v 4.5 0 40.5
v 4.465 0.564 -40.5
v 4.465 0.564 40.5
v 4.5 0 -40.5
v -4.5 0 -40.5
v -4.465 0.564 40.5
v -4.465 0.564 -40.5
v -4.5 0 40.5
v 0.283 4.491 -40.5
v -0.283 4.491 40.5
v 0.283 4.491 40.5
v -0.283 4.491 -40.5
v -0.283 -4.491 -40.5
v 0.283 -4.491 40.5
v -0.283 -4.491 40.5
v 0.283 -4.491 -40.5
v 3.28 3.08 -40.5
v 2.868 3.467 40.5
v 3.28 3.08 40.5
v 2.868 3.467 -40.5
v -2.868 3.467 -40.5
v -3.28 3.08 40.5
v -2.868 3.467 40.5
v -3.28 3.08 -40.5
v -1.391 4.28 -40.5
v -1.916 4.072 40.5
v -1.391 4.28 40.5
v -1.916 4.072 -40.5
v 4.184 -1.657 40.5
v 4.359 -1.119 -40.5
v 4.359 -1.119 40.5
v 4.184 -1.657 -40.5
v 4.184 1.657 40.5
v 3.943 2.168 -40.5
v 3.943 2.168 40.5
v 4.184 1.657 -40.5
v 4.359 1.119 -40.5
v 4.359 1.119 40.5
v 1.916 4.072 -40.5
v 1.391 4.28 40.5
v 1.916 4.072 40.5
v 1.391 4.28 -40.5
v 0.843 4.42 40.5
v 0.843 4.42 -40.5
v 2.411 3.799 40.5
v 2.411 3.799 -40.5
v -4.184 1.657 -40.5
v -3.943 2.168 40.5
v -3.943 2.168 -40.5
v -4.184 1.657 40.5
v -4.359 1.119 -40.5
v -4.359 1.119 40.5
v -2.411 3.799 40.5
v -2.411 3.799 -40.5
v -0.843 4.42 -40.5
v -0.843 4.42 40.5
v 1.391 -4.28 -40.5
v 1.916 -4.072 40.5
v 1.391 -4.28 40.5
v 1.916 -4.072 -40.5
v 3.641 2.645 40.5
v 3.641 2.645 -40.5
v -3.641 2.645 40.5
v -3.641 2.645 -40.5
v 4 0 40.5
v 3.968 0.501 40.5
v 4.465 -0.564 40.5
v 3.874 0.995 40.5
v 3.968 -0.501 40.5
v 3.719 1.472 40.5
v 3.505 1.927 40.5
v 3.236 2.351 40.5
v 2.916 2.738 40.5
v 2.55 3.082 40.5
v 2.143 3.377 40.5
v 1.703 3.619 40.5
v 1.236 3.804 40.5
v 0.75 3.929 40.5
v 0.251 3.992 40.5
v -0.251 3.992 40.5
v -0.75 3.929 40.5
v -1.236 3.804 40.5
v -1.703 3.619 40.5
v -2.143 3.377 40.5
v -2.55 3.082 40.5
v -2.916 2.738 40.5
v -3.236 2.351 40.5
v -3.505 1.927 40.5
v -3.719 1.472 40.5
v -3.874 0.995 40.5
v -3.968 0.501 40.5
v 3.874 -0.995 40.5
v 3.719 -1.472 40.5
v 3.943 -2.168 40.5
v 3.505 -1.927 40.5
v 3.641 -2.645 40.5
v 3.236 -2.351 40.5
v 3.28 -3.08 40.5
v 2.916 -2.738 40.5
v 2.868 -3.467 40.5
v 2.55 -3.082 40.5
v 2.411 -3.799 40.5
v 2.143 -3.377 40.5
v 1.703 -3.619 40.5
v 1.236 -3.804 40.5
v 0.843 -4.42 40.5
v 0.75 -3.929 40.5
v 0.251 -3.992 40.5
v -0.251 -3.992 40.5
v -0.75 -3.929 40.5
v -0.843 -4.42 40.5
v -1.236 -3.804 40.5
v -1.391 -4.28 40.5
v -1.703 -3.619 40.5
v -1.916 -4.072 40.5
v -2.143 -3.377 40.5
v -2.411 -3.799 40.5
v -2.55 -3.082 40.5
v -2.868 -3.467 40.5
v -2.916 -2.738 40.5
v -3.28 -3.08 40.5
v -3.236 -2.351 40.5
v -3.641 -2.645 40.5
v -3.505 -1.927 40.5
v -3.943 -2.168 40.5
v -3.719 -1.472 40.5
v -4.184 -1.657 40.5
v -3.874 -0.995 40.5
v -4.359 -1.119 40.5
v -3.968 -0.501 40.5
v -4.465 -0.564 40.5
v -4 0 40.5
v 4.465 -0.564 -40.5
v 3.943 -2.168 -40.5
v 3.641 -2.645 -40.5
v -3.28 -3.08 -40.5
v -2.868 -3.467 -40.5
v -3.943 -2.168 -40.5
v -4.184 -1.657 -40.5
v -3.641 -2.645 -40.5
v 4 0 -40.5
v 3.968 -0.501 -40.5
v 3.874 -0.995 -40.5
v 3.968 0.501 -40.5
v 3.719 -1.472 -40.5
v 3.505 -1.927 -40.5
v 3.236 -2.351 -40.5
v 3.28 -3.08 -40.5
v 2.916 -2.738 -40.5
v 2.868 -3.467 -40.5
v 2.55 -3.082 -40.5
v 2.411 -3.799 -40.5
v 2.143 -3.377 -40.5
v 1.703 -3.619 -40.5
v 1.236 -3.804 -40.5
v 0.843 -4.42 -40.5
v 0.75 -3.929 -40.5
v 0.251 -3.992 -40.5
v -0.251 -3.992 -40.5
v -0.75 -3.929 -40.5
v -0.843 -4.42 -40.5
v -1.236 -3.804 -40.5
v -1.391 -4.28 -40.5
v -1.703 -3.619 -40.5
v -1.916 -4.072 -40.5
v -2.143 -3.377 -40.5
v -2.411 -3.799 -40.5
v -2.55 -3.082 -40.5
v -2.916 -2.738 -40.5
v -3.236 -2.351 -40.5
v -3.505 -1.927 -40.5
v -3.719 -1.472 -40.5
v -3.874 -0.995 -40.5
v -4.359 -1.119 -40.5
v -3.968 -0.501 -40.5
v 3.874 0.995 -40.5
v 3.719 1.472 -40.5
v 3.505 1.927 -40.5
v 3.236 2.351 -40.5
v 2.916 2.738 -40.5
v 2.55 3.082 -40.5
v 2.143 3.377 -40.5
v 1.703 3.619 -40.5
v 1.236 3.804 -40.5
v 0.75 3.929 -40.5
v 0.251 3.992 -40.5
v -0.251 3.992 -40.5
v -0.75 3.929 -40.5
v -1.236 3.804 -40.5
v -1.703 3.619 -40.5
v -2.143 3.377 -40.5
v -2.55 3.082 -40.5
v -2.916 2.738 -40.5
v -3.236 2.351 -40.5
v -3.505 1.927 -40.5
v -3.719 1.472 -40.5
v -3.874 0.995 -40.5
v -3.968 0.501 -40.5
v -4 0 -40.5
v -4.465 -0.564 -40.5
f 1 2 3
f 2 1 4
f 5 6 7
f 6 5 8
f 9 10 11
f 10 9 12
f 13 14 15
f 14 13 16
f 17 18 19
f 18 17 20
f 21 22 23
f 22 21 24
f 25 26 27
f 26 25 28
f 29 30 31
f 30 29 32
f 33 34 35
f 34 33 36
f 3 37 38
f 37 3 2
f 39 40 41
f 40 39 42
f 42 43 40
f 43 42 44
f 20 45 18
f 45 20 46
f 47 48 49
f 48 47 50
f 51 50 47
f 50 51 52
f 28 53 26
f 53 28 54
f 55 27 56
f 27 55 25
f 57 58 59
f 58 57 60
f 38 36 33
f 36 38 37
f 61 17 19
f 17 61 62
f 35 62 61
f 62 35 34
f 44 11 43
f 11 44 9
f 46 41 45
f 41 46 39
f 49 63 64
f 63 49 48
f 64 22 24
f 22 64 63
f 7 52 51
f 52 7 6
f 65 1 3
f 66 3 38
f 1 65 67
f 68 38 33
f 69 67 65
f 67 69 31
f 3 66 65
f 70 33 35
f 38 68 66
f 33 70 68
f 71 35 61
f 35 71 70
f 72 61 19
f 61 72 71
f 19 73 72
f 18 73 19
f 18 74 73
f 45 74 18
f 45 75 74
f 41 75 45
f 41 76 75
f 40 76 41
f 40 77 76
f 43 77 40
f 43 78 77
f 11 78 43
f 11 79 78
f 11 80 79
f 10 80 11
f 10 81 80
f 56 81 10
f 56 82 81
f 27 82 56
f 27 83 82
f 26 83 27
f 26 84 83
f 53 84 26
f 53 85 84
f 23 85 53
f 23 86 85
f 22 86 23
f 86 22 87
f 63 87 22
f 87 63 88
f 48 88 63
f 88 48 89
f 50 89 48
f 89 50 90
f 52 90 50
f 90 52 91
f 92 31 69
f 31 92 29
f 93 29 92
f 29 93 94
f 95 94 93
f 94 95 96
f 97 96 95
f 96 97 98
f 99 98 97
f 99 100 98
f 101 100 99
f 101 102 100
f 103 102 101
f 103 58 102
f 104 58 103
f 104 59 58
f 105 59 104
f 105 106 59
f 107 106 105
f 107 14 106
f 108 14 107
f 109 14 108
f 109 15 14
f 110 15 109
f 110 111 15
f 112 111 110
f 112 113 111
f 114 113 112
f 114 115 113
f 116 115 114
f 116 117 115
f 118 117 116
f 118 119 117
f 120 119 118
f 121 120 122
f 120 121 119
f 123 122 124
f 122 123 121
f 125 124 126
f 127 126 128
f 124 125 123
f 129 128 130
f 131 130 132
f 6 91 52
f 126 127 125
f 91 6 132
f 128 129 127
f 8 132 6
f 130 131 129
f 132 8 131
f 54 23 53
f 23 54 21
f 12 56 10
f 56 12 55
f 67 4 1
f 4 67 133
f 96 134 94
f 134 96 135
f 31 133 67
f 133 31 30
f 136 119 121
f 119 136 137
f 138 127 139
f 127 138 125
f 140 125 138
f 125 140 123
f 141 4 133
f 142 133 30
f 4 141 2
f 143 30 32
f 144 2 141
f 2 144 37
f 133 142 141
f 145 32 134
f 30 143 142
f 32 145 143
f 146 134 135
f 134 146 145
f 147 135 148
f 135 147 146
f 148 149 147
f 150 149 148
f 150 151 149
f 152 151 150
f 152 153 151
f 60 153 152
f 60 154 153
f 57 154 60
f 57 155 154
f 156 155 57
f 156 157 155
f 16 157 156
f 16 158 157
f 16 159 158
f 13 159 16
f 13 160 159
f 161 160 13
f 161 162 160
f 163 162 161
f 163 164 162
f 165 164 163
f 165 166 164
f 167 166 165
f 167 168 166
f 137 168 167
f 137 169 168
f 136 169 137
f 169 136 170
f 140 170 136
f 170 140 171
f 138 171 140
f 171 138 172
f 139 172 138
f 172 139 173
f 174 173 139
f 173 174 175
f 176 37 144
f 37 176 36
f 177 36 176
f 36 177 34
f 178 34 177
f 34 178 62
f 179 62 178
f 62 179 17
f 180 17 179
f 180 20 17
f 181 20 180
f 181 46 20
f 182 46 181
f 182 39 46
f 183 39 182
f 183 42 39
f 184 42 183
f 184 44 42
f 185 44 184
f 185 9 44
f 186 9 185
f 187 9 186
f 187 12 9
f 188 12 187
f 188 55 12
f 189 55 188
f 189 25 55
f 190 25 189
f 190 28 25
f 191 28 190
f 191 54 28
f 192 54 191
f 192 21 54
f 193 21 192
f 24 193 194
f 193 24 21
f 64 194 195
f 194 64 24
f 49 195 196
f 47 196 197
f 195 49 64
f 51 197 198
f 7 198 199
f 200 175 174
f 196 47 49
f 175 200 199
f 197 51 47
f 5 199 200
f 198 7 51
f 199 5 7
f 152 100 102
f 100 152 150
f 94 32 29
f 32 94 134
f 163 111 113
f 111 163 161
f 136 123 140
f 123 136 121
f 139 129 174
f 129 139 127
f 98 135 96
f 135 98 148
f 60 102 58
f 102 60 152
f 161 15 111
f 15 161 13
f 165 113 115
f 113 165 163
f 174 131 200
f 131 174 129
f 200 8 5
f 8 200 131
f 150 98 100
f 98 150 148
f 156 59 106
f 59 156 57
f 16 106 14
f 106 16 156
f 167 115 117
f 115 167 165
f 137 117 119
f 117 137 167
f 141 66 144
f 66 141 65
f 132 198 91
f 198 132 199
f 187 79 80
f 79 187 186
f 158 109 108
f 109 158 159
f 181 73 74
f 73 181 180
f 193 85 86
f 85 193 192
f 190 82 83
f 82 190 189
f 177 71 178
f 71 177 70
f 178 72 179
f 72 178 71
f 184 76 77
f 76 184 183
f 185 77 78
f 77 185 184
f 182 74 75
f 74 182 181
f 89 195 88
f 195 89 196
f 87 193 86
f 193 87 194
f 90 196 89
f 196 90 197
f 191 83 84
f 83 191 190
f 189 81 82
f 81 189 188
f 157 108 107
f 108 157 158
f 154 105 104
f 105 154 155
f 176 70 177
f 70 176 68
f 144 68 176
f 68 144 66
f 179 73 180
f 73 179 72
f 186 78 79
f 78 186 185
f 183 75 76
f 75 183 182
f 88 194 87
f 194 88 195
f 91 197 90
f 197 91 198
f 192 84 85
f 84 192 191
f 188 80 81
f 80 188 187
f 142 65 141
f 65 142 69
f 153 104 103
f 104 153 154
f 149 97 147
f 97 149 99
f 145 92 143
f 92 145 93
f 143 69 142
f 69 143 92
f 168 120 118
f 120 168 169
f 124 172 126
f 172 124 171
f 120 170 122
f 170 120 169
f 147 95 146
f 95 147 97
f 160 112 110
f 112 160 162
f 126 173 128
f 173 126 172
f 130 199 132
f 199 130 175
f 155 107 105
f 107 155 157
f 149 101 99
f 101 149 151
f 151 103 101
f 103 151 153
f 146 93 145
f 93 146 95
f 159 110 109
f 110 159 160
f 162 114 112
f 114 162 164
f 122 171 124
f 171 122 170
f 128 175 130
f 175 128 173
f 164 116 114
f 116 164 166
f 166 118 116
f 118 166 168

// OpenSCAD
$fn = 50;


difference() {
	union() {
		translate(v = [0, 0, -40.5000000000]) {
			cylinder(h = 81, r = 4.5000000000);
		}
	}
	union() {
		translate(v = [0, 0, -100.0000000000]) {
			cylinder(h = 200, r = 4);
		}
	}
}
